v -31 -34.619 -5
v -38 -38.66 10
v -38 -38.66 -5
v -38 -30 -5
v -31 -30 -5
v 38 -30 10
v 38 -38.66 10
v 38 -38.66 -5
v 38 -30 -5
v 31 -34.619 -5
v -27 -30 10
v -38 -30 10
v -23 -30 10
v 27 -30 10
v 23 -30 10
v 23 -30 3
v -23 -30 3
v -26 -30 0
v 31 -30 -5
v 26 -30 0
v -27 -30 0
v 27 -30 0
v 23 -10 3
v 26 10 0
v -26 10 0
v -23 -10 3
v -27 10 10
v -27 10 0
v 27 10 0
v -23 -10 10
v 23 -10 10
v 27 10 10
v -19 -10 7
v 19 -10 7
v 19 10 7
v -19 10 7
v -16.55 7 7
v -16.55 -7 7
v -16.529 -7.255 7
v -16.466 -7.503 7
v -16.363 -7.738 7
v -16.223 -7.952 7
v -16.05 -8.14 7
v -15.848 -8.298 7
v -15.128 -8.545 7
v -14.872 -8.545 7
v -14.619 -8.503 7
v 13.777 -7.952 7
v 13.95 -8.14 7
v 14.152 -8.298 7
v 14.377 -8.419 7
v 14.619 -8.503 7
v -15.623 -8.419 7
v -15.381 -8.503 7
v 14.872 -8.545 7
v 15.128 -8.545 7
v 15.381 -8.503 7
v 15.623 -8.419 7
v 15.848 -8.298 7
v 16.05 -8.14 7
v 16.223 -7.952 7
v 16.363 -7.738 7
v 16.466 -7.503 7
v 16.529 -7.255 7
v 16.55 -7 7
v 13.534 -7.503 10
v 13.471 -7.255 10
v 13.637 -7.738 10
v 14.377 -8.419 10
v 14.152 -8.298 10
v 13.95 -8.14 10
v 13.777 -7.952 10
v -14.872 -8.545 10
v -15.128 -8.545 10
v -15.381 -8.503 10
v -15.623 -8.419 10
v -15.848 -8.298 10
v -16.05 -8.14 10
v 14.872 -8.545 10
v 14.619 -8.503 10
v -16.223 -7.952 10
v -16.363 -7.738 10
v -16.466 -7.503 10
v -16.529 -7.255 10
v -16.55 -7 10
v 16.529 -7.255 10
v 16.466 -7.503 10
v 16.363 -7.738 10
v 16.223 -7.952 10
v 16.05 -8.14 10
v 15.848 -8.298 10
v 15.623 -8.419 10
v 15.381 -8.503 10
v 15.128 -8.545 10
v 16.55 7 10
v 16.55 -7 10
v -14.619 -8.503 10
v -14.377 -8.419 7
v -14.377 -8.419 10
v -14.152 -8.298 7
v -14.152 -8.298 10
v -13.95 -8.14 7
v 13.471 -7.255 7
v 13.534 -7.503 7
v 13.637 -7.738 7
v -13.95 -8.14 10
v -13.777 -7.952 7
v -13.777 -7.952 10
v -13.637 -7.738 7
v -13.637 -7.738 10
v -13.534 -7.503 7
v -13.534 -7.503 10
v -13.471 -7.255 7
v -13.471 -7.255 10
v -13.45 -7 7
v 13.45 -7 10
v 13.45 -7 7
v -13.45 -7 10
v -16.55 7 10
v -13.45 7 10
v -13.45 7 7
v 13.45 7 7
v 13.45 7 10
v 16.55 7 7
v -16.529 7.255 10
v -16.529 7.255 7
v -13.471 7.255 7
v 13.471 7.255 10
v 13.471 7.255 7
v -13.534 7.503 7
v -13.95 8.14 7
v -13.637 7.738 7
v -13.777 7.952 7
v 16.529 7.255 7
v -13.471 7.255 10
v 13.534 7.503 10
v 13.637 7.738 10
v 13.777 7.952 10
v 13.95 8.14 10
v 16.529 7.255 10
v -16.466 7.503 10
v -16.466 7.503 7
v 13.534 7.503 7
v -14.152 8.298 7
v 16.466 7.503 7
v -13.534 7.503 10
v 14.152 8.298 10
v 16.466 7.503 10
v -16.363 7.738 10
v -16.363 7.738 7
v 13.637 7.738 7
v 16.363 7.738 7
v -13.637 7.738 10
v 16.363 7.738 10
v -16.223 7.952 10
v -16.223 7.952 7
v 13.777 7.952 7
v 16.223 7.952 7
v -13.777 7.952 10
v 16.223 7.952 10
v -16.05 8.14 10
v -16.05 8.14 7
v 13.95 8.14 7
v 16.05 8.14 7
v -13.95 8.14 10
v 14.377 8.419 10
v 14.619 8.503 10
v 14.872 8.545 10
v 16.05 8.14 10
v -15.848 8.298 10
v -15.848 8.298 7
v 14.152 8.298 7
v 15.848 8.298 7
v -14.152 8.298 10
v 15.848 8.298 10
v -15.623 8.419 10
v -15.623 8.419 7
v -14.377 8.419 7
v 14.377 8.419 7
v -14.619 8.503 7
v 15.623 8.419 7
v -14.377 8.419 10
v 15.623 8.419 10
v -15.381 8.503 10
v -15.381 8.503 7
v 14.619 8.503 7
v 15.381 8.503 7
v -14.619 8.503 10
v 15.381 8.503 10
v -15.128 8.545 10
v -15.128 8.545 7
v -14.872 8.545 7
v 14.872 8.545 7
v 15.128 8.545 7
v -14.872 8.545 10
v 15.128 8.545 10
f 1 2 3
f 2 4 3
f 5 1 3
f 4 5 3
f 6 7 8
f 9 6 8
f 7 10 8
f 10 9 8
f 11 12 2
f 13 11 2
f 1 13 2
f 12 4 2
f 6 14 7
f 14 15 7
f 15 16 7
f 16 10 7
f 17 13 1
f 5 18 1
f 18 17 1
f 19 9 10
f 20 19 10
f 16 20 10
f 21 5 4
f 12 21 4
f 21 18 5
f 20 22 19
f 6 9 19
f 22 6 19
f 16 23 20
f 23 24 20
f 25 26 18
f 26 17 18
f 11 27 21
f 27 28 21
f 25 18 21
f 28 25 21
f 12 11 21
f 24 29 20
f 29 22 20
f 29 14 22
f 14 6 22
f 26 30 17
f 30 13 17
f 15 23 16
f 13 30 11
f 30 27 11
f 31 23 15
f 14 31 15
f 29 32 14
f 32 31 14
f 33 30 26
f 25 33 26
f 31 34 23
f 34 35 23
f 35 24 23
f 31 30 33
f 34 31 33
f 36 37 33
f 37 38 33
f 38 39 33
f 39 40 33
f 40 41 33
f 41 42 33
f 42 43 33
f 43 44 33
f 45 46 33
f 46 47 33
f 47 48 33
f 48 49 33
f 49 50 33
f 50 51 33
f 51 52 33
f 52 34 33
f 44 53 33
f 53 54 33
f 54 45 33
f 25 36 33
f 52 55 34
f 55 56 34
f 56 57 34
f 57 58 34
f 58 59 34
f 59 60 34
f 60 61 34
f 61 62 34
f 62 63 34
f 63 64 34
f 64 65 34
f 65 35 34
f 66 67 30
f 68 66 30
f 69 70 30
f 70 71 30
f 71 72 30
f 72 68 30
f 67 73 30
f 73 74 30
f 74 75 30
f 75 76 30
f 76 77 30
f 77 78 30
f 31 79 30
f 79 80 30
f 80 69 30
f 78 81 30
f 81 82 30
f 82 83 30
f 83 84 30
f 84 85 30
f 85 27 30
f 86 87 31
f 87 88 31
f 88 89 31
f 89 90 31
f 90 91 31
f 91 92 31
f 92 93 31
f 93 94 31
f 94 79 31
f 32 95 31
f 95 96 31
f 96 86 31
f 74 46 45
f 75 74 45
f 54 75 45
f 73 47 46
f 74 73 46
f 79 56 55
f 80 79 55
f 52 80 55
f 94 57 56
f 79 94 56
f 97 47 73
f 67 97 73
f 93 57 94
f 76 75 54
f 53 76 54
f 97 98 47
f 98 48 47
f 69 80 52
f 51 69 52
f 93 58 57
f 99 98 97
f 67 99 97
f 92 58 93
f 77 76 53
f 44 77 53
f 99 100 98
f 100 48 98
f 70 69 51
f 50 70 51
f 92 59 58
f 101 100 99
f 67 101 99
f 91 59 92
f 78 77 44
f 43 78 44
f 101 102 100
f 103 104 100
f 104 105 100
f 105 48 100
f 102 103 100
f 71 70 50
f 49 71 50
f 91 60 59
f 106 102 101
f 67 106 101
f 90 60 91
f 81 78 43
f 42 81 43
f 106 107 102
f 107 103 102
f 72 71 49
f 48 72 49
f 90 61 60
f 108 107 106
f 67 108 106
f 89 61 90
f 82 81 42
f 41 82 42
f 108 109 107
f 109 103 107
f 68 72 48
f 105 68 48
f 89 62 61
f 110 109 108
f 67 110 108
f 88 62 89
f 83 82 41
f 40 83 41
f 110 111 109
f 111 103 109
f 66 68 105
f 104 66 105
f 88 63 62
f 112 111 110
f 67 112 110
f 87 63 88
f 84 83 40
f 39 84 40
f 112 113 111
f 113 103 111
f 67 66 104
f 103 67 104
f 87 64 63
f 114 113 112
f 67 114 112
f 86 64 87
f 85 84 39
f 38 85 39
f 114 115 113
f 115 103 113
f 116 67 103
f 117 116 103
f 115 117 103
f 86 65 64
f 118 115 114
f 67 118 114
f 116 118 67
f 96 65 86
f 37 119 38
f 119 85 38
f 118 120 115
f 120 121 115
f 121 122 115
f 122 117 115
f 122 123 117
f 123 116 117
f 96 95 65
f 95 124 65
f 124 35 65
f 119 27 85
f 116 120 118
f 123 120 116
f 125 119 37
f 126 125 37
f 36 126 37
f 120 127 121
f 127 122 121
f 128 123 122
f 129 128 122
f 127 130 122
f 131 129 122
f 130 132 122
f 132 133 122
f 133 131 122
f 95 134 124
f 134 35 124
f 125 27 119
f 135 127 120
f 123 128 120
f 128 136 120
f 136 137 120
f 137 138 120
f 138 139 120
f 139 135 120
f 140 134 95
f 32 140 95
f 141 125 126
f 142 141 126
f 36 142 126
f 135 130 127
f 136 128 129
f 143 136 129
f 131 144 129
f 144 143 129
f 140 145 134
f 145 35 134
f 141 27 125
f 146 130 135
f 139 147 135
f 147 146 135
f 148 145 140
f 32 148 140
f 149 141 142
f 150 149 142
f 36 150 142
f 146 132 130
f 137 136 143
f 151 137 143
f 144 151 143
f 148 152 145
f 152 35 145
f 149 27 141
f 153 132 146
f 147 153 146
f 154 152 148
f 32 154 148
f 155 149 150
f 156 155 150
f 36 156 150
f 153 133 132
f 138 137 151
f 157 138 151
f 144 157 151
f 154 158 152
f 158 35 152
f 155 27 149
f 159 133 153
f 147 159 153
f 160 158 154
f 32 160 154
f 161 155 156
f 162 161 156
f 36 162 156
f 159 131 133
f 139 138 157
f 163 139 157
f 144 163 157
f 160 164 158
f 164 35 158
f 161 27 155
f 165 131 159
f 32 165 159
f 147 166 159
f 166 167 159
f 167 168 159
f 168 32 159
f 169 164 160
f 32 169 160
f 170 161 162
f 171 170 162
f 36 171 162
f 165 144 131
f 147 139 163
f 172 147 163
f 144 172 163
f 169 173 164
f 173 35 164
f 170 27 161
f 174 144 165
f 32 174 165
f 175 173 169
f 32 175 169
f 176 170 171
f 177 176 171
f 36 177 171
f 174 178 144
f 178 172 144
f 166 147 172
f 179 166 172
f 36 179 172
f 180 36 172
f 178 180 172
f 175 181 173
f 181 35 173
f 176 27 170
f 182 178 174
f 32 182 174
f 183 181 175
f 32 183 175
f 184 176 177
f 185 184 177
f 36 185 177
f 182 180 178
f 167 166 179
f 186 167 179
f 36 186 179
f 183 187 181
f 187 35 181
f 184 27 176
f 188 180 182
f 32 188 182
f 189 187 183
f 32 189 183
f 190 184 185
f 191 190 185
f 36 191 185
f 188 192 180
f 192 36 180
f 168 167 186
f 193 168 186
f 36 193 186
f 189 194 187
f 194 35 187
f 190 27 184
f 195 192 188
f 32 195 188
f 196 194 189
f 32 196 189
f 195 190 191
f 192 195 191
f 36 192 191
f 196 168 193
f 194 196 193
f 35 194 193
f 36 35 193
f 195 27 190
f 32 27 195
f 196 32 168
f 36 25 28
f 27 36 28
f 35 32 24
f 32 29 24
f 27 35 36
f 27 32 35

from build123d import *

# Parameters (mm, degrees)
SKETCH1_W                = 46
SKETCH1_H                = 20
BOSS_EXTRUDE1_DEPTH      = 10
BOSS_EXTRUDE2_DEPTH      = 5
BOSS_EXTRUDE2_DEPTH_BACK = 10
SKETCH3_W                = 38
SKETCH3_H                = 20
CUT_EXTRUDE1_DEPTH       = 7
CHAMFER1_START           = -38.660254038
CHAMFER1_DEPTH           = 48.660254038


with BuildPart() as part:
    # Sketch1 → Boss-Extrude1 (new body)
    # profile 1 of 3: a face of its own
    with BuildSketch(Plane.XY):
        Rectangle(SKETCH1_W, SKETCH1_H)
        with BuildLine():
            Line((-13.45, 7), (-13.45, 0))
            Line((-13.45, 0), (-13.45, -7))
            ThreePointArc((-13.45, -7), (-15, -8.55), (-16.55, -7))
            Line((-16.55, -7), (-16.55, -2.8e-08))
            Line((-16.55, -2.8e-08), (-16.55, 7))
            ThreePointArc((-16.55, 7), (-15, 8.55), (-13.45, 7))
        make_face(mode=Mode.SUBTRACT)
        with BuildLine():
            Line((13.45, -7), (13.45, -7e-09))
            Line((13.45, -7e-09), (13.45, 7))
            ThreePointArc((13.45, 7), (15, 8.55), (16.55, 7))
            Line((16.55, 7), (16.55, 0))
            Line((16.55, 0), (16.55, -7))
            ThreePointArc((16.55, -7), (15, -8.55), (13.45, -7))
        make_face(mode=Mode.SUBTRACT)
    # profile 2 of 3: a face of its own
    with BuildSketch(Plane.XY):
        Polygon((-23, -30), (-23, -10), (-23, 10), (-27, 10), (-27, -30), align=None)
    # profile 3 of 3: a face of its own
    with BuildSketch(Plane.XY):
        Polygon((23, 10), (23, -10), (23, -30), (27, -30), (27, 10), align=None)
    extrude(amount=BOSS_EXTRUDE1_DEPTH)

    # Sketch2 → Boss-Extrude2 (add, two sides: drawn at the far end of the back side and taken through both)
    with BuildSketch(Plane(origin=(0, 0, 0), x_dir=(-1, 0, 0), z_dir=(0, 0, -1)).offset(-BOSS_EXTRUDE2_DEPTH_BACK)):
        Polygon((-23, -30), (-38, -38.660254038), (-38, -30), align=None)
        Polygon((23, -30), (38, -38.660254038), (38, -30), align=None)
    extrude(amount=BOSS_EXTRUDE2_DEPTH + BOSS_EXTRUDE2_DEPTH_BACK)

    # Sketch3 → Cut-Extrude1 (cut)
    with BuildSketch(Plane(origin=(0, 0, 0), x_dir=(-1, 0, 0), z_dir=(0, 0, -1))):
        Rectangle(SKETCH3_W, SKETCH3_H)
    extrude(amount=-CUT_EXTRUDE1_DEPTH, mode=Mode.SUBTRACT)

    # Chamfer1: read off the stored shape, not the designer's step
    # Chamfer1 outline → Chamfer1 (cut)
    with BuildSketch(Plane(origin=(0, 0, 0), x_dir=(1, 0, 0), z_dir=(0, 1, 0)).offset(CHAMFER1_START)):
        Polygon((-23, 5), (-31, 5), (-19, -7), (-19, 0), (-23, 0), align=None)
        Polygon((31, 5), (23, 5), (23, 0), (19, 0), (19, -7), align=None)
    extrude(amount=CHAMFER1_DEPTH, mode=Mode.SUBTRACT)


solid = part.part
